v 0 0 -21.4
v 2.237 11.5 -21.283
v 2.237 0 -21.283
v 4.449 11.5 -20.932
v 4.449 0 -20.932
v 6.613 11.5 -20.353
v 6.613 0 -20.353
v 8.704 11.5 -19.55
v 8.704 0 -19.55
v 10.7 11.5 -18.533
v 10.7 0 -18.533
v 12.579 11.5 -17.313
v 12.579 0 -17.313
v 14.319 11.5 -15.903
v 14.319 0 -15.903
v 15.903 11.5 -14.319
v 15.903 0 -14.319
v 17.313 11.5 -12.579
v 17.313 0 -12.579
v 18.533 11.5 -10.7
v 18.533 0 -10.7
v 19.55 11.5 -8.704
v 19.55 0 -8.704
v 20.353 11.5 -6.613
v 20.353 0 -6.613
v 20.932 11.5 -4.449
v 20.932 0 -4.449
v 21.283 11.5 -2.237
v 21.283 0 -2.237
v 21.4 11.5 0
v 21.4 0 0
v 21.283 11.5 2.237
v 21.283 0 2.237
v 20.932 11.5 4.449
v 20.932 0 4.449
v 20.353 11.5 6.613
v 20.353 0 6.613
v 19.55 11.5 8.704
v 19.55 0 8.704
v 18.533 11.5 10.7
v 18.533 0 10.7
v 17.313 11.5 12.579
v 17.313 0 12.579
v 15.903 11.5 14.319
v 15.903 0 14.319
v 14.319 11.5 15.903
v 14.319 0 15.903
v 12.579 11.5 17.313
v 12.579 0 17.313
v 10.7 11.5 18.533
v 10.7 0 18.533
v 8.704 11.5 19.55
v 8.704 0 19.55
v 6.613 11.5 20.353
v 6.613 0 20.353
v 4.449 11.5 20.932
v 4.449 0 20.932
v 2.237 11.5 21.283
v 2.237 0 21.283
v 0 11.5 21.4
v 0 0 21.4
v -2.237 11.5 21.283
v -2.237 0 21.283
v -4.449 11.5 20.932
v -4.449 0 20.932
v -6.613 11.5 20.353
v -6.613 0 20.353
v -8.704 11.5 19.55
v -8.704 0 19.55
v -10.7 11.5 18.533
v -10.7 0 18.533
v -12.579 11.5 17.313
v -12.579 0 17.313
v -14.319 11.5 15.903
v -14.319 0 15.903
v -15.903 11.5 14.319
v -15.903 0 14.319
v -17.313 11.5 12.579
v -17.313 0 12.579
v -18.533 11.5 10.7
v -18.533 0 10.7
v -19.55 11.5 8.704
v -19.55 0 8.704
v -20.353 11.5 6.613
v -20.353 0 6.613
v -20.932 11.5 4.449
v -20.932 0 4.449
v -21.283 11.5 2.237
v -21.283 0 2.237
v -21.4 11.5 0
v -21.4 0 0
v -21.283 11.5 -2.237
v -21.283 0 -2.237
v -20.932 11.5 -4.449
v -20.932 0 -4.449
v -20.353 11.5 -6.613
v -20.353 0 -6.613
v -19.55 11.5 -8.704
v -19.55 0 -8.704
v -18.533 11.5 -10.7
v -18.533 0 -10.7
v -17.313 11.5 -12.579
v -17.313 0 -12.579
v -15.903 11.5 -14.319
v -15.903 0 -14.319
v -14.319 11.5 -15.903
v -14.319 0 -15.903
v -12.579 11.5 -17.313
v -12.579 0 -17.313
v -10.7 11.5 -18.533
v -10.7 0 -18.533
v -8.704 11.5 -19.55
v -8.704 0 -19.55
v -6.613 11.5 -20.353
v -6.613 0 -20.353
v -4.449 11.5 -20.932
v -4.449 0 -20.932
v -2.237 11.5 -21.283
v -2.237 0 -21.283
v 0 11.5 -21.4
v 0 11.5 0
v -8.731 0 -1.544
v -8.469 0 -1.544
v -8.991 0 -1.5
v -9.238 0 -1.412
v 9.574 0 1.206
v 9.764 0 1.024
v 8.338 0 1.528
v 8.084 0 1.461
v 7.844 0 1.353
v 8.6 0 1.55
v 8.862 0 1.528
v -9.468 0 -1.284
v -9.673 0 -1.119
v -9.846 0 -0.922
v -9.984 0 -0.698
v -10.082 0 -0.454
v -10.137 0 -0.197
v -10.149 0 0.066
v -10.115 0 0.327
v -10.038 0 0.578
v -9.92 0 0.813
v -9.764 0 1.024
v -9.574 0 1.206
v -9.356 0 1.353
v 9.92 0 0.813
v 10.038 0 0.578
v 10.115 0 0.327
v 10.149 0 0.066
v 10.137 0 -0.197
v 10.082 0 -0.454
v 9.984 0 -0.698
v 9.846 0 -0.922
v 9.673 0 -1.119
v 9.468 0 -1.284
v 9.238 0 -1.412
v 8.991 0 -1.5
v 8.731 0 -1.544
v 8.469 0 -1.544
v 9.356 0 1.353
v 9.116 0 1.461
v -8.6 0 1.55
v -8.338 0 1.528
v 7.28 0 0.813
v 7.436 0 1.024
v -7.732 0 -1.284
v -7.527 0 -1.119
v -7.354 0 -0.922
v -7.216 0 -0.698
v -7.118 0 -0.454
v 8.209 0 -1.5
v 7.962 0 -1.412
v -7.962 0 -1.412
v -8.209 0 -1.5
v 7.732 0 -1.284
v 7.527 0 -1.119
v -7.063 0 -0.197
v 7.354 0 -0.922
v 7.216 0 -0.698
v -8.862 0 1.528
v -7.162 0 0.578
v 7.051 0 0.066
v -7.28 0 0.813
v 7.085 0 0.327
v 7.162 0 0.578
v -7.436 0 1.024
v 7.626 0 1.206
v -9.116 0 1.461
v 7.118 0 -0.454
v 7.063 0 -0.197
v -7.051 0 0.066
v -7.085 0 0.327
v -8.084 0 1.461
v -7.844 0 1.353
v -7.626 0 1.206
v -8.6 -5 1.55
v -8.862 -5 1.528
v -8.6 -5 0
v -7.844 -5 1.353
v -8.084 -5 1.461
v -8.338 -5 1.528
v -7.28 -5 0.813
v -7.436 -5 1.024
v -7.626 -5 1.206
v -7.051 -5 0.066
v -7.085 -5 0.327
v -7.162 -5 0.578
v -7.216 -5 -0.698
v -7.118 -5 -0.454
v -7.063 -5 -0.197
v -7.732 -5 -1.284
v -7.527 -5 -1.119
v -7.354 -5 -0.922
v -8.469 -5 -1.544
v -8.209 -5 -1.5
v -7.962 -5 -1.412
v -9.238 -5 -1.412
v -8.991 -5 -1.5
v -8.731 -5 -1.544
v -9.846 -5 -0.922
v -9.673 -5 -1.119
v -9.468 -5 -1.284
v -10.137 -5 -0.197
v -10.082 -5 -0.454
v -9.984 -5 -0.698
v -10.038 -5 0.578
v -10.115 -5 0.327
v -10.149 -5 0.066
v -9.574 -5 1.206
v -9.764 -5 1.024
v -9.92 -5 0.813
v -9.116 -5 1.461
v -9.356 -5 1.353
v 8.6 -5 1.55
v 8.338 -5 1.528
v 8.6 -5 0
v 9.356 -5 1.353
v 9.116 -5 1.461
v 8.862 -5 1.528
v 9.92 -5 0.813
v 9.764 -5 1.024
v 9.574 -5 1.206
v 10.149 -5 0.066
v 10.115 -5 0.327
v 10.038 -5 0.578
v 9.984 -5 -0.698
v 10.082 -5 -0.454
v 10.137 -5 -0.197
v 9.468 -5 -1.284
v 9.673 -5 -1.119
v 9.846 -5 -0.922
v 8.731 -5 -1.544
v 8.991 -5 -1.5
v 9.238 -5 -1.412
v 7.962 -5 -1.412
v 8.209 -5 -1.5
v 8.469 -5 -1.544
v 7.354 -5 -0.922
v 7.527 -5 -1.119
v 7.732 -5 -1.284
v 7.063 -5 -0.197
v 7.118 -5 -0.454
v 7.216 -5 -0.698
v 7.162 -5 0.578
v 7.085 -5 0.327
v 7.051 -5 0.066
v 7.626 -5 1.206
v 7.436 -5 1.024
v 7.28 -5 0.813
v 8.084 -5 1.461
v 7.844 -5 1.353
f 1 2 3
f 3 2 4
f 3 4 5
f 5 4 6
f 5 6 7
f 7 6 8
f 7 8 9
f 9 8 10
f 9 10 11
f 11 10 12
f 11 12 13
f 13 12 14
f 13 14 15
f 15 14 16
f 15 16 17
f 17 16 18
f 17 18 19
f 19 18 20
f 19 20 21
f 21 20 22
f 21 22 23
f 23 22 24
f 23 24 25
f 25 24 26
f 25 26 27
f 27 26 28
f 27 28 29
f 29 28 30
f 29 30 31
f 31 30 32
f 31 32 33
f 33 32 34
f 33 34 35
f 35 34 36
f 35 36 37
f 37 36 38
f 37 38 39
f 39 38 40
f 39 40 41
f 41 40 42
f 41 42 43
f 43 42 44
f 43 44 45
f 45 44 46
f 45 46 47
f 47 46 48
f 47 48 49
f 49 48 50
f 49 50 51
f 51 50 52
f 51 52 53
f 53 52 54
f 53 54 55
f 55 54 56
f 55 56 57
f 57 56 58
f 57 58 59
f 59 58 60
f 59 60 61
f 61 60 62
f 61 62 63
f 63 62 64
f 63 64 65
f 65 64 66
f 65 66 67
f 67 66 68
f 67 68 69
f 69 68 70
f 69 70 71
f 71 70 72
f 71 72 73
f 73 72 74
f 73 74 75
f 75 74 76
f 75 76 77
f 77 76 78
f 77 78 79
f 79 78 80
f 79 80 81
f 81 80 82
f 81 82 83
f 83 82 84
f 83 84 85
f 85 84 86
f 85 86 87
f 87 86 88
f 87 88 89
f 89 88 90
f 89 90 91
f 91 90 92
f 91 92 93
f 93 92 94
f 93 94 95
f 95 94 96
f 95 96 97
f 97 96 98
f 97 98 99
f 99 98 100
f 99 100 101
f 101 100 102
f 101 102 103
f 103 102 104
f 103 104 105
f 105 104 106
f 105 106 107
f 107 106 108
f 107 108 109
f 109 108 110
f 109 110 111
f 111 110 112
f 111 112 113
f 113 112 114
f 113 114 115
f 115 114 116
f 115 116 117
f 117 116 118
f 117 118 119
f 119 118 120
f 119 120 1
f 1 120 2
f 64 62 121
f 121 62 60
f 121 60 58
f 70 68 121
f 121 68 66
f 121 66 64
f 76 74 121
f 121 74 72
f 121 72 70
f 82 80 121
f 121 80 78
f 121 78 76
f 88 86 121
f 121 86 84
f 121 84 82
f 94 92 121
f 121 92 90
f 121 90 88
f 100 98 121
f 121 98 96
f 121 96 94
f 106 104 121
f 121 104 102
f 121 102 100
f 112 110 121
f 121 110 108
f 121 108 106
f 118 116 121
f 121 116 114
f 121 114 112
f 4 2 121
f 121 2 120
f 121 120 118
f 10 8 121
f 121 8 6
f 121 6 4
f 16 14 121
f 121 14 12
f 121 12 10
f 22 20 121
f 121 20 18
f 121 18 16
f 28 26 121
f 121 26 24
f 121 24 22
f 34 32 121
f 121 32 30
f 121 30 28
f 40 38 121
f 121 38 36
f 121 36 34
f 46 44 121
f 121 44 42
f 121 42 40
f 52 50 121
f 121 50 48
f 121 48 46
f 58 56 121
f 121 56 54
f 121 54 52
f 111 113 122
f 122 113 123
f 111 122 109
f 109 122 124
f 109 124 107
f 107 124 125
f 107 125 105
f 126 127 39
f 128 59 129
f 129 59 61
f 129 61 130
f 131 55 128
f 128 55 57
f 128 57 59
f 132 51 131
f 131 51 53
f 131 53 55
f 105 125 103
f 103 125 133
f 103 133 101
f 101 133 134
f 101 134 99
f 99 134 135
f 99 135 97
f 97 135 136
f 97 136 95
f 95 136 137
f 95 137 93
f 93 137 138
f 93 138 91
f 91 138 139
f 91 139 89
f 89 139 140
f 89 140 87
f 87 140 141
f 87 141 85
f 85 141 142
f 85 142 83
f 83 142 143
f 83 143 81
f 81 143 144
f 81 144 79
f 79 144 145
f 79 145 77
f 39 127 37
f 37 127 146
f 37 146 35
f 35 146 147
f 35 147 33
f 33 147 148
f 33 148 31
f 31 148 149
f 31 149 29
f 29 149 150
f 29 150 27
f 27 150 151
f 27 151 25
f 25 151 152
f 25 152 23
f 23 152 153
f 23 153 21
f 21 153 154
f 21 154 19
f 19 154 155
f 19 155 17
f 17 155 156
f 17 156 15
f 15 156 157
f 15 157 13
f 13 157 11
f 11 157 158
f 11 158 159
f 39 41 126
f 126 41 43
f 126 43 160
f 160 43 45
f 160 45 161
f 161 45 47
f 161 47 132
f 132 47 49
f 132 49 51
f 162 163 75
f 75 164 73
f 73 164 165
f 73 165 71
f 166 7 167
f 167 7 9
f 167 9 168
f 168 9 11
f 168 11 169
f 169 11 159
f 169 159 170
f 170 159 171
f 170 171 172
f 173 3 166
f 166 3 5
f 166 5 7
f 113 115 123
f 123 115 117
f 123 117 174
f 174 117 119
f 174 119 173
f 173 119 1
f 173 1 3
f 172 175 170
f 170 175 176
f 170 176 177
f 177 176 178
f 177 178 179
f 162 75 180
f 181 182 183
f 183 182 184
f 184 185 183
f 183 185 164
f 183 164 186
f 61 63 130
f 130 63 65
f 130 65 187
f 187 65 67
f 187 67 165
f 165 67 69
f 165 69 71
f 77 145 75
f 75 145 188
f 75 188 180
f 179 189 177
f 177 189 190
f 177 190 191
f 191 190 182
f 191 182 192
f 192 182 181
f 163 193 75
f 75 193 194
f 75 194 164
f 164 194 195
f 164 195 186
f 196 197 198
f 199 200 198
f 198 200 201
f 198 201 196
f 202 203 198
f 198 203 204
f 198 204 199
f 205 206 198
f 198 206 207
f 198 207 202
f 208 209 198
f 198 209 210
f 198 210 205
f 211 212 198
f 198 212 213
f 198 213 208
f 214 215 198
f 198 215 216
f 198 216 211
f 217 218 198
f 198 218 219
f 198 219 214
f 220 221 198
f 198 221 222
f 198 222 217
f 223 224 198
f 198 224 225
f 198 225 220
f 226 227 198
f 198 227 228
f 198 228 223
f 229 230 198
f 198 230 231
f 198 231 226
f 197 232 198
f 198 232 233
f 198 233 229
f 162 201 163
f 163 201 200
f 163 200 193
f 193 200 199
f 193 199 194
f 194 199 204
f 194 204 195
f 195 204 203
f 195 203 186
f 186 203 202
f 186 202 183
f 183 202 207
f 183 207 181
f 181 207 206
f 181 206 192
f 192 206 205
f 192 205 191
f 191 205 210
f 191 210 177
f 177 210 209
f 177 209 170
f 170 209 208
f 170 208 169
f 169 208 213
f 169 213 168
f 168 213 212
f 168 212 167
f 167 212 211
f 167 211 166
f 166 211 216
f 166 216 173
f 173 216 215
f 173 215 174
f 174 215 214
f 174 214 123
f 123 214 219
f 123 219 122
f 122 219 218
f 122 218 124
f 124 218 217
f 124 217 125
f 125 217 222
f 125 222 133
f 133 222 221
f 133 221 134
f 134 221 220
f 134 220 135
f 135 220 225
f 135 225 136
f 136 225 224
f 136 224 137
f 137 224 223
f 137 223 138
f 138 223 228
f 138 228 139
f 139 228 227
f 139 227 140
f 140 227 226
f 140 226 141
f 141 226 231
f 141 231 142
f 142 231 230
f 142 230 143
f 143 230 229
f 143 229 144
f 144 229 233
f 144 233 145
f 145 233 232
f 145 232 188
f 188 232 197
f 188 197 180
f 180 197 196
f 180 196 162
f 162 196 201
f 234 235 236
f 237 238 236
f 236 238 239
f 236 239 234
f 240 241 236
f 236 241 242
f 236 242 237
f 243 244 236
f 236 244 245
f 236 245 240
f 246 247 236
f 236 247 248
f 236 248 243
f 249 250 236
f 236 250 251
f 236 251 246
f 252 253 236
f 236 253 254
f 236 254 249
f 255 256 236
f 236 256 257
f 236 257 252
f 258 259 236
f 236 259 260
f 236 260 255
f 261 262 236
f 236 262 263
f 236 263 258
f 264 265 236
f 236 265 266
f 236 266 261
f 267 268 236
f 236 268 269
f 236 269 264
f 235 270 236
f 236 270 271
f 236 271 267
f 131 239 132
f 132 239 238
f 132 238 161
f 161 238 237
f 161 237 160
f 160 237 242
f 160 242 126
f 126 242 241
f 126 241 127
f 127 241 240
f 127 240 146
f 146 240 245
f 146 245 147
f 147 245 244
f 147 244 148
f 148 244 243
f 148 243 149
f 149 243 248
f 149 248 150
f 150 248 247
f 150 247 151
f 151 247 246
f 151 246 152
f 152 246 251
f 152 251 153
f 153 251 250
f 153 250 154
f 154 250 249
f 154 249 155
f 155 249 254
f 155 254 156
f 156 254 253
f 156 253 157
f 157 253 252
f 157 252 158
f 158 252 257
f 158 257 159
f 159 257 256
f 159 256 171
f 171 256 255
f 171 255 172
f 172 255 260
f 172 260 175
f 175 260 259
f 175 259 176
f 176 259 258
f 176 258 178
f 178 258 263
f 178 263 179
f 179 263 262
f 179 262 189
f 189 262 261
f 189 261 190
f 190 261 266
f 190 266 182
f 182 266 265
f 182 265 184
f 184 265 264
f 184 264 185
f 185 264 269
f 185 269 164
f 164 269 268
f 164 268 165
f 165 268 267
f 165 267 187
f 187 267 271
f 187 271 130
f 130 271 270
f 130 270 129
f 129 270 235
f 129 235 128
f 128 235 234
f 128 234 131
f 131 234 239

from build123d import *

# Parameters (mm, degrees)
SKETCH1_R                = 21.4
SKETCH1_R_2              = 1.55
BOSS_EXTRUDE1_DEPTH      = 11.5
BOSS_EXTRUDE2_DEPTH      = 11.5
BOSS_EXTRUDE2_DEPTH_BACK = 5
SKETCH1_3_R              = 1.55


with BuildPart() as part:
    # Sketch1 → Boss-Extrude1 (new body)
    with BuildSketch(Plane(origin=(0, 0, 0), x_dir=(1, 0, 0), z_dir=(0, 1, 0))):
        Circle(SKETCH1_R)
        with Locations((-8.6, 0)):
            Circle(SKETCH1_R_2, mode=Mode.SUBTRACT)
        with Locations((8.6, 0)):
            Circle(SKETCH1_R_2, mode=Mode.SUBTRACT)
    extrude(amount=BOSS_EXTRUDE1_DEPTH)

    # Sketch1<3> → Boss-Extrude2 (add, two sides: drawn at the far end of the back side and taken through both)
    with BuildSketch(Plane(origin=(0, 0, 0), x_dir=(1, 0, 0), z_dir=(0, 1, 0)).offset(-BOSS_EXTRUDE2_DEPTH_BACK)):
        with Locations((8.6, 0)):
            Circle(SKETCH1_3_R)
        with Locations((-8.6, 0)):
            Circle(SKETCH1_3_R)
    extrude(amount=BOSS_EXTRUDE2_DEPTH + BOSS_EXTRUDE2_DEPTH_BACK)


solid = part.part
